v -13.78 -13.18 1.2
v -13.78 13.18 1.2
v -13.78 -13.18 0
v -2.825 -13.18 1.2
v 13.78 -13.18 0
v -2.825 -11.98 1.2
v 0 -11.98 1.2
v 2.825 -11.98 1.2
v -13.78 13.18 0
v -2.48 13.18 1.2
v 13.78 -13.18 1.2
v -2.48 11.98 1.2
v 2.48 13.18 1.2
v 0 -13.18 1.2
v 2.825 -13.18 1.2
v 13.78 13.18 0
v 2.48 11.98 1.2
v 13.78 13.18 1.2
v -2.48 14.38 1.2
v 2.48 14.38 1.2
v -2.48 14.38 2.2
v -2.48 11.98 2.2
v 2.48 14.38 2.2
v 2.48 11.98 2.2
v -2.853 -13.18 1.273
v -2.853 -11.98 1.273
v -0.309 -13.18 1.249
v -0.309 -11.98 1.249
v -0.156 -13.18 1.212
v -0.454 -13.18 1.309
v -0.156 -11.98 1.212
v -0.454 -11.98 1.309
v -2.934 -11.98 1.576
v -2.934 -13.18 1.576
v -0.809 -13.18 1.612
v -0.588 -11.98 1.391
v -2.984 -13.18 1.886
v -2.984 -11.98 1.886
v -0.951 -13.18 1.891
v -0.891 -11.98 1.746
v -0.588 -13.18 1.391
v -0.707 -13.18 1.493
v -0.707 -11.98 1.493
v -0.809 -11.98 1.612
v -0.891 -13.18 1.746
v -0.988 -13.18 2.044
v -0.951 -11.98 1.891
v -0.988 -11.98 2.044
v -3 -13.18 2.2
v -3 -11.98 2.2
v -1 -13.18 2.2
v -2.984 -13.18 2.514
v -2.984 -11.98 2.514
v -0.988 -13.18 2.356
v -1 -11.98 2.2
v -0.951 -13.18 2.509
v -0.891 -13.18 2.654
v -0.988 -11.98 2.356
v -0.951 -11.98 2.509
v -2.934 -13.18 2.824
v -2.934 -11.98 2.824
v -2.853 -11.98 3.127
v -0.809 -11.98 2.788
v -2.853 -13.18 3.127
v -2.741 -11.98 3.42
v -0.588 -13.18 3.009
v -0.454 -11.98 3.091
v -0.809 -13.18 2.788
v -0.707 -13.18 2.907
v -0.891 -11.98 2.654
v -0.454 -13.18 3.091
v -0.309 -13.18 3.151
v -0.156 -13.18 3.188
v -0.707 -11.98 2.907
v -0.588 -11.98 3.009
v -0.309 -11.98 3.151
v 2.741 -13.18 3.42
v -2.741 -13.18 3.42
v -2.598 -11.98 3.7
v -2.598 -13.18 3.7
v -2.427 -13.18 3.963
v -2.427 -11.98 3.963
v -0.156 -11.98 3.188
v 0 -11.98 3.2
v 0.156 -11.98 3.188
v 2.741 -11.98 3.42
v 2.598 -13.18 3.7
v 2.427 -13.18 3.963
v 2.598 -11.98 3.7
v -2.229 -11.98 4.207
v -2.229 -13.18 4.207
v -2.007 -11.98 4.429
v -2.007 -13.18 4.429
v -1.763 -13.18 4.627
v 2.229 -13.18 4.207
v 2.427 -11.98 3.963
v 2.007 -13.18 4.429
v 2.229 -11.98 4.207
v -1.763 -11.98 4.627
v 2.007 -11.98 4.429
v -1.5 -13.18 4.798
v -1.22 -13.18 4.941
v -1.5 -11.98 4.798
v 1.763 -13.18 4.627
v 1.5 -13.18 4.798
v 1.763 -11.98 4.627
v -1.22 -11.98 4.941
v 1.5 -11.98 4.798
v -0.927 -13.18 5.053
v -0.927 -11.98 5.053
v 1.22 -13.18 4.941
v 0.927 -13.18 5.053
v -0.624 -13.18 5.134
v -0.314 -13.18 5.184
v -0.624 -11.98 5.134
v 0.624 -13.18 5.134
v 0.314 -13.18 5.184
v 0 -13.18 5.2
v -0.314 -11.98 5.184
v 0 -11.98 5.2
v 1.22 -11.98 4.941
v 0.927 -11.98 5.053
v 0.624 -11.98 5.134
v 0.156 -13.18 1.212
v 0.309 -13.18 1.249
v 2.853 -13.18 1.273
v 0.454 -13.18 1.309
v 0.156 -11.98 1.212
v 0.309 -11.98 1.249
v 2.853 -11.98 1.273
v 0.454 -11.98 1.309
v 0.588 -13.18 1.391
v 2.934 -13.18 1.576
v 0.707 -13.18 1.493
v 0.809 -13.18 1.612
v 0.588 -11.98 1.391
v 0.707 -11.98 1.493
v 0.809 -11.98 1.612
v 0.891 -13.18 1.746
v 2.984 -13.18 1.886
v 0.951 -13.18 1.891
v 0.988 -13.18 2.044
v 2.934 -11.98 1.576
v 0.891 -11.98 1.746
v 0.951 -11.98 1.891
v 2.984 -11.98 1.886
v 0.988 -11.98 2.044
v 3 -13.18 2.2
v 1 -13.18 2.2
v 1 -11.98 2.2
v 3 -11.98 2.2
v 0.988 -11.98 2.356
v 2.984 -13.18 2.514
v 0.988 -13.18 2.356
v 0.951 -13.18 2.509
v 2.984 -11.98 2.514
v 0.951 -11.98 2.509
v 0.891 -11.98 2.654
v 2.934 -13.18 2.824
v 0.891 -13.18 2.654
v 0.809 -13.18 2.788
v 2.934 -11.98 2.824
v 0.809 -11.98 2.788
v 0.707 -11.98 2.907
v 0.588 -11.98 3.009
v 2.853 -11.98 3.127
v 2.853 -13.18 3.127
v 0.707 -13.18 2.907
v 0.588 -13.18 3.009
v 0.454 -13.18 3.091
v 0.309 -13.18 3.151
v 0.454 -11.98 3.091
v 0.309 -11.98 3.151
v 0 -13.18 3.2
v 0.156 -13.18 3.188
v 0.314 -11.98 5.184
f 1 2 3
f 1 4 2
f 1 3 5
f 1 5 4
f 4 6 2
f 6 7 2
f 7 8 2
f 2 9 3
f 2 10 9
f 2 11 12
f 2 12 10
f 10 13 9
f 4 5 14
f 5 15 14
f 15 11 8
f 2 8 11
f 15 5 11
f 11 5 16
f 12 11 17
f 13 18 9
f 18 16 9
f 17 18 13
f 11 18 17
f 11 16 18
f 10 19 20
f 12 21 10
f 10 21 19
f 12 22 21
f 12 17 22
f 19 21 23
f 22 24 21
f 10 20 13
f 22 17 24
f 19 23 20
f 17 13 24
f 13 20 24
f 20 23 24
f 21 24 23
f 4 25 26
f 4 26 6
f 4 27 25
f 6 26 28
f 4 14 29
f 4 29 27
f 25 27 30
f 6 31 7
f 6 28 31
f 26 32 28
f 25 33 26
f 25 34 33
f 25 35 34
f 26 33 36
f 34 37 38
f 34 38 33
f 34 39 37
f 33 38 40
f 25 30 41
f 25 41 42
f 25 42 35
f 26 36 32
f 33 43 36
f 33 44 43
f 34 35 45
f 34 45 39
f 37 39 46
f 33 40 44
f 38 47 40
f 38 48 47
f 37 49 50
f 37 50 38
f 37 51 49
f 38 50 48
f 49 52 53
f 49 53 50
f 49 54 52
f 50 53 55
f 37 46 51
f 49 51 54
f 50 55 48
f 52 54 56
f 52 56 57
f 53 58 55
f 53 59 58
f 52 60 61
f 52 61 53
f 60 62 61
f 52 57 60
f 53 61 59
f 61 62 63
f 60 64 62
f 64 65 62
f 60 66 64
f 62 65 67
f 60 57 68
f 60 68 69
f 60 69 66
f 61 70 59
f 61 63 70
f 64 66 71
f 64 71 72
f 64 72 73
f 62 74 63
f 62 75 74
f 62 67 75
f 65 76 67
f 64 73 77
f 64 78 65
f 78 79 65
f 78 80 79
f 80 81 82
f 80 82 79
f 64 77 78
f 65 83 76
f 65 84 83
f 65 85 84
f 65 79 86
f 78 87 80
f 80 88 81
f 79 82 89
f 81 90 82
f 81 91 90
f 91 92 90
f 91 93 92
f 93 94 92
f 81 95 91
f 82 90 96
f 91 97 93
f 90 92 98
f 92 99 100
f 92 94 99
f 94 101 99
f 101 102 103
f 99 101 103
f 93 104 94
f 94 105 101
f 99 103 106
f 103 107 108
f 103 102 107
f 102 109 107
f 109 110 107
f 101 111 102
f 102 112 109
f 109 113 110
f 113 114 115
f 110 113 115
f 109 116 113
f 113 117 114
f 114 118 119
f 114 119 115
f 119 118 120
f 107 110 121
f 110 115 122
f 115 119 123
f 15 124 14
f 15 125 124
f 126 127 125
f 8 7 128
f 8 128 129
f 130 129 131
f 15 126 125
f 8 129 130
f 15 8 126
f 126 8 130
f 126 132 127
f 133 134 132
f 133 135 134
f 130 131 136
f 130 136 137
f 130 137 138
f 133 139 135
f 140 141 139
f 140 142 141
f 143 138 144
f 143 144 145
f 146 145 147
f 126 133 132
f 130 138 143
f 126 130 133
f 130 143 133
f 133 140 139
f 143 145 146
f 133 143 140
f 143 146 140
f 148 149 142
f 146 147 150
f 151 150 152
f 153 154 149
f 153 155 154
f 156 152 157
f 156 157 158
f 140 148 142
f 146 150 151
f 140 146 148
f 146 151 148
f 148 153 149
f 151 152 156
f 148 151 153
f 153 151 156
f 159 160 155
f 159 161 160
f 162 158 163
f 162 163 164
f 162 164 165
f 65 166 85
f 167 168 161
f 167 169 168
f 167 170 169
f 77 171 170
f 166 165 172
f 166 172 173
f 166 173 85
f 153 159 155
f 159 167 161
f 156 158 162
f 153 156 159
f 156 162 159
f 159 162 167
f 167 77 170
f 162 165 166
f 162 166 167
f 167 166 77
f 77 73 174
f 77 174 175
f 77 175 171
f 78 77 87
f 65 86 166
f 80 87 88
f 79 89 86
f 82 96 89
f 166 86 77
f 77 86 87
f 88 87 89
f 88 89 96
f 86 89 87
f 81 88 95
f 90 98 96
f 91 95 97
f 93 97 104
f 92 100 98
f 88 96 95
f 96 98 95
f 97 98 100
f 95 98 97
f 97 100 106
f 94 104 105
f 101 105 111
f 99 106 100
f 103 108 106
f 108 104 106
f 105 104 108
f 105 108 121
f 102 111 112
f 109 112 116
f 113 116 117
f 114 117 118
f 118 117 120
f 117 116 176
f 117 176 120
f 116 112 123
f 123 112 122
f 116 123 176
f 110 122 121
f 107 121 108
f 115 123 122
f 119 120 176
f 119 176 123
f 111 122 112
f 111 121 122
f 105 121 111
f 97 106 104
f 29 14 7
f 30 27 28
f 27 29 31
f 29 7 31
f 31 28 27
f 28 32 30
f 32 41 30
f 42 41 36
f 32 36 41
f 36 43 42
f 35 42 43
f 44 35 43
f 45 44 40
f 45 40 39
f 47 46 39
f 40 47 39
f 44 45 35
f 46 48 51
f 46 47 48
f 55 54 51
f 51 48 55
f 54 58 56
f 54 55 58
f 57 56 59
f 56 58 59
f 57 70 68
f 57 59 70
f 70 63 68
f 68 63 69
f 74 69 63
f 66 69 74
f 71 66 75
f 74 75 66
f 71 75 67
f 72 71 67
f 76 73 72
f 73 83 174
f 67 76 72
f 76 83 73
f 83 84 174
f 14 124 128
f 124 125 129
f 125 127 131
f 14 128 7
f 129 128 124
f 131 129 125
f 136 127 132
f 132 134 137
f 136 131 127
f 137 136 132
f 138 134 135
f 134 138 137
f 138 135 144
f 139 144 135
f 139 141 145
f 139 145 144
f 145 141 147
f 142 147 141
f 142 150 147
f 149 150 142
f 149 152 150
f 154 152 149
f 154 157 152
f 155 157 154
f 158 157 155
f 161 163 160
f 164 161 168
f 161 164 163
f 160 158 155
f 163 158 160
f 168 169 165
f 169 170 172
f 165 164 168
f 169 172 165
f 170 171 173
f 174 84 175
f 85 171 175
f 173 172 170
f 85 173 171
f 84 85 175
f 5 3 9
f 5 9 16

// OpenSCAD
// ============================================================
// 하우징 Peltier 30x30 - housing_peltier_closure1_v2 (별도 부품)
// housing_peltier_closure1_v2에서 판재 크기를 가로/세로 각 5mm씩 키움 (탭 크기는 동일)
// ============================================================

module housing_peltier_closure1_v2() {
    plate_w = 27.56; // 가로 (22.56 -> 5mm 증가)
    plate_h = 26.36; // 세로 (21.36 -> 5mm 증가)
    plate_t = 1.2;   // 판재 두께

    // 돌출 직육면체: 가로 4.96mm, 높이(Z) 1.16mm.
    // 세로(Y)는 +Y쪽 가장자리 기준으로 면 위에 1.2mm + 바깥으로 1.2mm = 총 2.4mm
    tab_w        = 4.96; // 가로
    tab_protrude = 1.2;  // 3D 기준 +Y 방향으로 면 바깥으로 튀어나오는 길이
    tab_overlap  = 1.2;  // 면 위에 걸쳐있는 길이 (+Y쪽 가장자리에서 안쪽으로)
    tab_len      = tab_protrude + tab_overlap; // 세로 전체 길이 (2.4mm)
    tab_z        = 1;    // 돌출부가 판재 위로 추가로 튀어나오는 두께(높이)

    // -Y쪽 나사 보스: 구멍은 Y축 방향으로 관통, X는 정중앙(0).
    // 안쪽 구멍 지름 2mm, 둘러싼 두께 2mm -> 바깥지름 6mm. 가장자리에서 안쪽으로 1.2mm.
    boss_screw_d = 2;
    boss_wall_t  = 2;
    boss_d       = boss_screw_d + 2 * boss_wall_t; // 6mm
    boss_len     = 1.2; // -Y 가장자리에서 안쪽(+Y)으로 들어간 길이
    boss_z       = plate_t + boss_d / 2 - 2; // 구멍 중심 기준 Z축 음수 방향으로 2mm 내림

    echo("[PeltierClosure1] tab_w =", tab_w, " tab_len =", tab_len, " tab_z =", tab_z);
    echo("[PeltierClosure1] boss_d =", boss_d, " boss_len =", boss_len);

    difference() {
        union() {
            // 메인 평판
            color("gray")
                linear_extrude(height = plate_t)
                    square([plate_w, plate_h], center = true);

            // 돌출 직육면체 (4.96mm x 2.4mm x 1.16mm). +Y쪽 가장자리를 기준으로
            // 안쪽(면 위)으로 1.2mm, 바깥쪽(3D +Y 방향)으로 1.2mm 걸쳐 있음.
            color("SteelBlue")
                translate([0, plate_h / 2 - tab_overlap + tab_len / 2, plate_t])
                    linear_extrude(height = tab_z)
                        square([tab_w, tab_len], center = true);

            // -Y쪽 나사 보스 (바깥지름 6mm), 가장자리에서 안쪽으로 1.2mm
            color("SteelBlue")
                translate([0, -plate_h / 2 + boss_len, boss_z])
                    rotate([90, 0, 0])
                        cylinder(d = boss_d, h = boss_len, $fn = 60);
        }

        // 나사 구멍 (Y방향 관통, 보스를 지나 여유 있게)
        translate([0, -plate_h / 2 + boss_len + 0.1, boss_z])
            rotate([90, 0, 0])
                cylinder(d = boss_screw_d, h = boss_len + 0.2, $fn = 40);

        // 보스가 판재 아래(z<0)로 튀어나온 부분 제거
        translate([-plate_w, -plate_h, -100])
            cube([plate_w * 2, plate_h * 2, 100]);
    }
}

housing_peltier_closure1_v2();
